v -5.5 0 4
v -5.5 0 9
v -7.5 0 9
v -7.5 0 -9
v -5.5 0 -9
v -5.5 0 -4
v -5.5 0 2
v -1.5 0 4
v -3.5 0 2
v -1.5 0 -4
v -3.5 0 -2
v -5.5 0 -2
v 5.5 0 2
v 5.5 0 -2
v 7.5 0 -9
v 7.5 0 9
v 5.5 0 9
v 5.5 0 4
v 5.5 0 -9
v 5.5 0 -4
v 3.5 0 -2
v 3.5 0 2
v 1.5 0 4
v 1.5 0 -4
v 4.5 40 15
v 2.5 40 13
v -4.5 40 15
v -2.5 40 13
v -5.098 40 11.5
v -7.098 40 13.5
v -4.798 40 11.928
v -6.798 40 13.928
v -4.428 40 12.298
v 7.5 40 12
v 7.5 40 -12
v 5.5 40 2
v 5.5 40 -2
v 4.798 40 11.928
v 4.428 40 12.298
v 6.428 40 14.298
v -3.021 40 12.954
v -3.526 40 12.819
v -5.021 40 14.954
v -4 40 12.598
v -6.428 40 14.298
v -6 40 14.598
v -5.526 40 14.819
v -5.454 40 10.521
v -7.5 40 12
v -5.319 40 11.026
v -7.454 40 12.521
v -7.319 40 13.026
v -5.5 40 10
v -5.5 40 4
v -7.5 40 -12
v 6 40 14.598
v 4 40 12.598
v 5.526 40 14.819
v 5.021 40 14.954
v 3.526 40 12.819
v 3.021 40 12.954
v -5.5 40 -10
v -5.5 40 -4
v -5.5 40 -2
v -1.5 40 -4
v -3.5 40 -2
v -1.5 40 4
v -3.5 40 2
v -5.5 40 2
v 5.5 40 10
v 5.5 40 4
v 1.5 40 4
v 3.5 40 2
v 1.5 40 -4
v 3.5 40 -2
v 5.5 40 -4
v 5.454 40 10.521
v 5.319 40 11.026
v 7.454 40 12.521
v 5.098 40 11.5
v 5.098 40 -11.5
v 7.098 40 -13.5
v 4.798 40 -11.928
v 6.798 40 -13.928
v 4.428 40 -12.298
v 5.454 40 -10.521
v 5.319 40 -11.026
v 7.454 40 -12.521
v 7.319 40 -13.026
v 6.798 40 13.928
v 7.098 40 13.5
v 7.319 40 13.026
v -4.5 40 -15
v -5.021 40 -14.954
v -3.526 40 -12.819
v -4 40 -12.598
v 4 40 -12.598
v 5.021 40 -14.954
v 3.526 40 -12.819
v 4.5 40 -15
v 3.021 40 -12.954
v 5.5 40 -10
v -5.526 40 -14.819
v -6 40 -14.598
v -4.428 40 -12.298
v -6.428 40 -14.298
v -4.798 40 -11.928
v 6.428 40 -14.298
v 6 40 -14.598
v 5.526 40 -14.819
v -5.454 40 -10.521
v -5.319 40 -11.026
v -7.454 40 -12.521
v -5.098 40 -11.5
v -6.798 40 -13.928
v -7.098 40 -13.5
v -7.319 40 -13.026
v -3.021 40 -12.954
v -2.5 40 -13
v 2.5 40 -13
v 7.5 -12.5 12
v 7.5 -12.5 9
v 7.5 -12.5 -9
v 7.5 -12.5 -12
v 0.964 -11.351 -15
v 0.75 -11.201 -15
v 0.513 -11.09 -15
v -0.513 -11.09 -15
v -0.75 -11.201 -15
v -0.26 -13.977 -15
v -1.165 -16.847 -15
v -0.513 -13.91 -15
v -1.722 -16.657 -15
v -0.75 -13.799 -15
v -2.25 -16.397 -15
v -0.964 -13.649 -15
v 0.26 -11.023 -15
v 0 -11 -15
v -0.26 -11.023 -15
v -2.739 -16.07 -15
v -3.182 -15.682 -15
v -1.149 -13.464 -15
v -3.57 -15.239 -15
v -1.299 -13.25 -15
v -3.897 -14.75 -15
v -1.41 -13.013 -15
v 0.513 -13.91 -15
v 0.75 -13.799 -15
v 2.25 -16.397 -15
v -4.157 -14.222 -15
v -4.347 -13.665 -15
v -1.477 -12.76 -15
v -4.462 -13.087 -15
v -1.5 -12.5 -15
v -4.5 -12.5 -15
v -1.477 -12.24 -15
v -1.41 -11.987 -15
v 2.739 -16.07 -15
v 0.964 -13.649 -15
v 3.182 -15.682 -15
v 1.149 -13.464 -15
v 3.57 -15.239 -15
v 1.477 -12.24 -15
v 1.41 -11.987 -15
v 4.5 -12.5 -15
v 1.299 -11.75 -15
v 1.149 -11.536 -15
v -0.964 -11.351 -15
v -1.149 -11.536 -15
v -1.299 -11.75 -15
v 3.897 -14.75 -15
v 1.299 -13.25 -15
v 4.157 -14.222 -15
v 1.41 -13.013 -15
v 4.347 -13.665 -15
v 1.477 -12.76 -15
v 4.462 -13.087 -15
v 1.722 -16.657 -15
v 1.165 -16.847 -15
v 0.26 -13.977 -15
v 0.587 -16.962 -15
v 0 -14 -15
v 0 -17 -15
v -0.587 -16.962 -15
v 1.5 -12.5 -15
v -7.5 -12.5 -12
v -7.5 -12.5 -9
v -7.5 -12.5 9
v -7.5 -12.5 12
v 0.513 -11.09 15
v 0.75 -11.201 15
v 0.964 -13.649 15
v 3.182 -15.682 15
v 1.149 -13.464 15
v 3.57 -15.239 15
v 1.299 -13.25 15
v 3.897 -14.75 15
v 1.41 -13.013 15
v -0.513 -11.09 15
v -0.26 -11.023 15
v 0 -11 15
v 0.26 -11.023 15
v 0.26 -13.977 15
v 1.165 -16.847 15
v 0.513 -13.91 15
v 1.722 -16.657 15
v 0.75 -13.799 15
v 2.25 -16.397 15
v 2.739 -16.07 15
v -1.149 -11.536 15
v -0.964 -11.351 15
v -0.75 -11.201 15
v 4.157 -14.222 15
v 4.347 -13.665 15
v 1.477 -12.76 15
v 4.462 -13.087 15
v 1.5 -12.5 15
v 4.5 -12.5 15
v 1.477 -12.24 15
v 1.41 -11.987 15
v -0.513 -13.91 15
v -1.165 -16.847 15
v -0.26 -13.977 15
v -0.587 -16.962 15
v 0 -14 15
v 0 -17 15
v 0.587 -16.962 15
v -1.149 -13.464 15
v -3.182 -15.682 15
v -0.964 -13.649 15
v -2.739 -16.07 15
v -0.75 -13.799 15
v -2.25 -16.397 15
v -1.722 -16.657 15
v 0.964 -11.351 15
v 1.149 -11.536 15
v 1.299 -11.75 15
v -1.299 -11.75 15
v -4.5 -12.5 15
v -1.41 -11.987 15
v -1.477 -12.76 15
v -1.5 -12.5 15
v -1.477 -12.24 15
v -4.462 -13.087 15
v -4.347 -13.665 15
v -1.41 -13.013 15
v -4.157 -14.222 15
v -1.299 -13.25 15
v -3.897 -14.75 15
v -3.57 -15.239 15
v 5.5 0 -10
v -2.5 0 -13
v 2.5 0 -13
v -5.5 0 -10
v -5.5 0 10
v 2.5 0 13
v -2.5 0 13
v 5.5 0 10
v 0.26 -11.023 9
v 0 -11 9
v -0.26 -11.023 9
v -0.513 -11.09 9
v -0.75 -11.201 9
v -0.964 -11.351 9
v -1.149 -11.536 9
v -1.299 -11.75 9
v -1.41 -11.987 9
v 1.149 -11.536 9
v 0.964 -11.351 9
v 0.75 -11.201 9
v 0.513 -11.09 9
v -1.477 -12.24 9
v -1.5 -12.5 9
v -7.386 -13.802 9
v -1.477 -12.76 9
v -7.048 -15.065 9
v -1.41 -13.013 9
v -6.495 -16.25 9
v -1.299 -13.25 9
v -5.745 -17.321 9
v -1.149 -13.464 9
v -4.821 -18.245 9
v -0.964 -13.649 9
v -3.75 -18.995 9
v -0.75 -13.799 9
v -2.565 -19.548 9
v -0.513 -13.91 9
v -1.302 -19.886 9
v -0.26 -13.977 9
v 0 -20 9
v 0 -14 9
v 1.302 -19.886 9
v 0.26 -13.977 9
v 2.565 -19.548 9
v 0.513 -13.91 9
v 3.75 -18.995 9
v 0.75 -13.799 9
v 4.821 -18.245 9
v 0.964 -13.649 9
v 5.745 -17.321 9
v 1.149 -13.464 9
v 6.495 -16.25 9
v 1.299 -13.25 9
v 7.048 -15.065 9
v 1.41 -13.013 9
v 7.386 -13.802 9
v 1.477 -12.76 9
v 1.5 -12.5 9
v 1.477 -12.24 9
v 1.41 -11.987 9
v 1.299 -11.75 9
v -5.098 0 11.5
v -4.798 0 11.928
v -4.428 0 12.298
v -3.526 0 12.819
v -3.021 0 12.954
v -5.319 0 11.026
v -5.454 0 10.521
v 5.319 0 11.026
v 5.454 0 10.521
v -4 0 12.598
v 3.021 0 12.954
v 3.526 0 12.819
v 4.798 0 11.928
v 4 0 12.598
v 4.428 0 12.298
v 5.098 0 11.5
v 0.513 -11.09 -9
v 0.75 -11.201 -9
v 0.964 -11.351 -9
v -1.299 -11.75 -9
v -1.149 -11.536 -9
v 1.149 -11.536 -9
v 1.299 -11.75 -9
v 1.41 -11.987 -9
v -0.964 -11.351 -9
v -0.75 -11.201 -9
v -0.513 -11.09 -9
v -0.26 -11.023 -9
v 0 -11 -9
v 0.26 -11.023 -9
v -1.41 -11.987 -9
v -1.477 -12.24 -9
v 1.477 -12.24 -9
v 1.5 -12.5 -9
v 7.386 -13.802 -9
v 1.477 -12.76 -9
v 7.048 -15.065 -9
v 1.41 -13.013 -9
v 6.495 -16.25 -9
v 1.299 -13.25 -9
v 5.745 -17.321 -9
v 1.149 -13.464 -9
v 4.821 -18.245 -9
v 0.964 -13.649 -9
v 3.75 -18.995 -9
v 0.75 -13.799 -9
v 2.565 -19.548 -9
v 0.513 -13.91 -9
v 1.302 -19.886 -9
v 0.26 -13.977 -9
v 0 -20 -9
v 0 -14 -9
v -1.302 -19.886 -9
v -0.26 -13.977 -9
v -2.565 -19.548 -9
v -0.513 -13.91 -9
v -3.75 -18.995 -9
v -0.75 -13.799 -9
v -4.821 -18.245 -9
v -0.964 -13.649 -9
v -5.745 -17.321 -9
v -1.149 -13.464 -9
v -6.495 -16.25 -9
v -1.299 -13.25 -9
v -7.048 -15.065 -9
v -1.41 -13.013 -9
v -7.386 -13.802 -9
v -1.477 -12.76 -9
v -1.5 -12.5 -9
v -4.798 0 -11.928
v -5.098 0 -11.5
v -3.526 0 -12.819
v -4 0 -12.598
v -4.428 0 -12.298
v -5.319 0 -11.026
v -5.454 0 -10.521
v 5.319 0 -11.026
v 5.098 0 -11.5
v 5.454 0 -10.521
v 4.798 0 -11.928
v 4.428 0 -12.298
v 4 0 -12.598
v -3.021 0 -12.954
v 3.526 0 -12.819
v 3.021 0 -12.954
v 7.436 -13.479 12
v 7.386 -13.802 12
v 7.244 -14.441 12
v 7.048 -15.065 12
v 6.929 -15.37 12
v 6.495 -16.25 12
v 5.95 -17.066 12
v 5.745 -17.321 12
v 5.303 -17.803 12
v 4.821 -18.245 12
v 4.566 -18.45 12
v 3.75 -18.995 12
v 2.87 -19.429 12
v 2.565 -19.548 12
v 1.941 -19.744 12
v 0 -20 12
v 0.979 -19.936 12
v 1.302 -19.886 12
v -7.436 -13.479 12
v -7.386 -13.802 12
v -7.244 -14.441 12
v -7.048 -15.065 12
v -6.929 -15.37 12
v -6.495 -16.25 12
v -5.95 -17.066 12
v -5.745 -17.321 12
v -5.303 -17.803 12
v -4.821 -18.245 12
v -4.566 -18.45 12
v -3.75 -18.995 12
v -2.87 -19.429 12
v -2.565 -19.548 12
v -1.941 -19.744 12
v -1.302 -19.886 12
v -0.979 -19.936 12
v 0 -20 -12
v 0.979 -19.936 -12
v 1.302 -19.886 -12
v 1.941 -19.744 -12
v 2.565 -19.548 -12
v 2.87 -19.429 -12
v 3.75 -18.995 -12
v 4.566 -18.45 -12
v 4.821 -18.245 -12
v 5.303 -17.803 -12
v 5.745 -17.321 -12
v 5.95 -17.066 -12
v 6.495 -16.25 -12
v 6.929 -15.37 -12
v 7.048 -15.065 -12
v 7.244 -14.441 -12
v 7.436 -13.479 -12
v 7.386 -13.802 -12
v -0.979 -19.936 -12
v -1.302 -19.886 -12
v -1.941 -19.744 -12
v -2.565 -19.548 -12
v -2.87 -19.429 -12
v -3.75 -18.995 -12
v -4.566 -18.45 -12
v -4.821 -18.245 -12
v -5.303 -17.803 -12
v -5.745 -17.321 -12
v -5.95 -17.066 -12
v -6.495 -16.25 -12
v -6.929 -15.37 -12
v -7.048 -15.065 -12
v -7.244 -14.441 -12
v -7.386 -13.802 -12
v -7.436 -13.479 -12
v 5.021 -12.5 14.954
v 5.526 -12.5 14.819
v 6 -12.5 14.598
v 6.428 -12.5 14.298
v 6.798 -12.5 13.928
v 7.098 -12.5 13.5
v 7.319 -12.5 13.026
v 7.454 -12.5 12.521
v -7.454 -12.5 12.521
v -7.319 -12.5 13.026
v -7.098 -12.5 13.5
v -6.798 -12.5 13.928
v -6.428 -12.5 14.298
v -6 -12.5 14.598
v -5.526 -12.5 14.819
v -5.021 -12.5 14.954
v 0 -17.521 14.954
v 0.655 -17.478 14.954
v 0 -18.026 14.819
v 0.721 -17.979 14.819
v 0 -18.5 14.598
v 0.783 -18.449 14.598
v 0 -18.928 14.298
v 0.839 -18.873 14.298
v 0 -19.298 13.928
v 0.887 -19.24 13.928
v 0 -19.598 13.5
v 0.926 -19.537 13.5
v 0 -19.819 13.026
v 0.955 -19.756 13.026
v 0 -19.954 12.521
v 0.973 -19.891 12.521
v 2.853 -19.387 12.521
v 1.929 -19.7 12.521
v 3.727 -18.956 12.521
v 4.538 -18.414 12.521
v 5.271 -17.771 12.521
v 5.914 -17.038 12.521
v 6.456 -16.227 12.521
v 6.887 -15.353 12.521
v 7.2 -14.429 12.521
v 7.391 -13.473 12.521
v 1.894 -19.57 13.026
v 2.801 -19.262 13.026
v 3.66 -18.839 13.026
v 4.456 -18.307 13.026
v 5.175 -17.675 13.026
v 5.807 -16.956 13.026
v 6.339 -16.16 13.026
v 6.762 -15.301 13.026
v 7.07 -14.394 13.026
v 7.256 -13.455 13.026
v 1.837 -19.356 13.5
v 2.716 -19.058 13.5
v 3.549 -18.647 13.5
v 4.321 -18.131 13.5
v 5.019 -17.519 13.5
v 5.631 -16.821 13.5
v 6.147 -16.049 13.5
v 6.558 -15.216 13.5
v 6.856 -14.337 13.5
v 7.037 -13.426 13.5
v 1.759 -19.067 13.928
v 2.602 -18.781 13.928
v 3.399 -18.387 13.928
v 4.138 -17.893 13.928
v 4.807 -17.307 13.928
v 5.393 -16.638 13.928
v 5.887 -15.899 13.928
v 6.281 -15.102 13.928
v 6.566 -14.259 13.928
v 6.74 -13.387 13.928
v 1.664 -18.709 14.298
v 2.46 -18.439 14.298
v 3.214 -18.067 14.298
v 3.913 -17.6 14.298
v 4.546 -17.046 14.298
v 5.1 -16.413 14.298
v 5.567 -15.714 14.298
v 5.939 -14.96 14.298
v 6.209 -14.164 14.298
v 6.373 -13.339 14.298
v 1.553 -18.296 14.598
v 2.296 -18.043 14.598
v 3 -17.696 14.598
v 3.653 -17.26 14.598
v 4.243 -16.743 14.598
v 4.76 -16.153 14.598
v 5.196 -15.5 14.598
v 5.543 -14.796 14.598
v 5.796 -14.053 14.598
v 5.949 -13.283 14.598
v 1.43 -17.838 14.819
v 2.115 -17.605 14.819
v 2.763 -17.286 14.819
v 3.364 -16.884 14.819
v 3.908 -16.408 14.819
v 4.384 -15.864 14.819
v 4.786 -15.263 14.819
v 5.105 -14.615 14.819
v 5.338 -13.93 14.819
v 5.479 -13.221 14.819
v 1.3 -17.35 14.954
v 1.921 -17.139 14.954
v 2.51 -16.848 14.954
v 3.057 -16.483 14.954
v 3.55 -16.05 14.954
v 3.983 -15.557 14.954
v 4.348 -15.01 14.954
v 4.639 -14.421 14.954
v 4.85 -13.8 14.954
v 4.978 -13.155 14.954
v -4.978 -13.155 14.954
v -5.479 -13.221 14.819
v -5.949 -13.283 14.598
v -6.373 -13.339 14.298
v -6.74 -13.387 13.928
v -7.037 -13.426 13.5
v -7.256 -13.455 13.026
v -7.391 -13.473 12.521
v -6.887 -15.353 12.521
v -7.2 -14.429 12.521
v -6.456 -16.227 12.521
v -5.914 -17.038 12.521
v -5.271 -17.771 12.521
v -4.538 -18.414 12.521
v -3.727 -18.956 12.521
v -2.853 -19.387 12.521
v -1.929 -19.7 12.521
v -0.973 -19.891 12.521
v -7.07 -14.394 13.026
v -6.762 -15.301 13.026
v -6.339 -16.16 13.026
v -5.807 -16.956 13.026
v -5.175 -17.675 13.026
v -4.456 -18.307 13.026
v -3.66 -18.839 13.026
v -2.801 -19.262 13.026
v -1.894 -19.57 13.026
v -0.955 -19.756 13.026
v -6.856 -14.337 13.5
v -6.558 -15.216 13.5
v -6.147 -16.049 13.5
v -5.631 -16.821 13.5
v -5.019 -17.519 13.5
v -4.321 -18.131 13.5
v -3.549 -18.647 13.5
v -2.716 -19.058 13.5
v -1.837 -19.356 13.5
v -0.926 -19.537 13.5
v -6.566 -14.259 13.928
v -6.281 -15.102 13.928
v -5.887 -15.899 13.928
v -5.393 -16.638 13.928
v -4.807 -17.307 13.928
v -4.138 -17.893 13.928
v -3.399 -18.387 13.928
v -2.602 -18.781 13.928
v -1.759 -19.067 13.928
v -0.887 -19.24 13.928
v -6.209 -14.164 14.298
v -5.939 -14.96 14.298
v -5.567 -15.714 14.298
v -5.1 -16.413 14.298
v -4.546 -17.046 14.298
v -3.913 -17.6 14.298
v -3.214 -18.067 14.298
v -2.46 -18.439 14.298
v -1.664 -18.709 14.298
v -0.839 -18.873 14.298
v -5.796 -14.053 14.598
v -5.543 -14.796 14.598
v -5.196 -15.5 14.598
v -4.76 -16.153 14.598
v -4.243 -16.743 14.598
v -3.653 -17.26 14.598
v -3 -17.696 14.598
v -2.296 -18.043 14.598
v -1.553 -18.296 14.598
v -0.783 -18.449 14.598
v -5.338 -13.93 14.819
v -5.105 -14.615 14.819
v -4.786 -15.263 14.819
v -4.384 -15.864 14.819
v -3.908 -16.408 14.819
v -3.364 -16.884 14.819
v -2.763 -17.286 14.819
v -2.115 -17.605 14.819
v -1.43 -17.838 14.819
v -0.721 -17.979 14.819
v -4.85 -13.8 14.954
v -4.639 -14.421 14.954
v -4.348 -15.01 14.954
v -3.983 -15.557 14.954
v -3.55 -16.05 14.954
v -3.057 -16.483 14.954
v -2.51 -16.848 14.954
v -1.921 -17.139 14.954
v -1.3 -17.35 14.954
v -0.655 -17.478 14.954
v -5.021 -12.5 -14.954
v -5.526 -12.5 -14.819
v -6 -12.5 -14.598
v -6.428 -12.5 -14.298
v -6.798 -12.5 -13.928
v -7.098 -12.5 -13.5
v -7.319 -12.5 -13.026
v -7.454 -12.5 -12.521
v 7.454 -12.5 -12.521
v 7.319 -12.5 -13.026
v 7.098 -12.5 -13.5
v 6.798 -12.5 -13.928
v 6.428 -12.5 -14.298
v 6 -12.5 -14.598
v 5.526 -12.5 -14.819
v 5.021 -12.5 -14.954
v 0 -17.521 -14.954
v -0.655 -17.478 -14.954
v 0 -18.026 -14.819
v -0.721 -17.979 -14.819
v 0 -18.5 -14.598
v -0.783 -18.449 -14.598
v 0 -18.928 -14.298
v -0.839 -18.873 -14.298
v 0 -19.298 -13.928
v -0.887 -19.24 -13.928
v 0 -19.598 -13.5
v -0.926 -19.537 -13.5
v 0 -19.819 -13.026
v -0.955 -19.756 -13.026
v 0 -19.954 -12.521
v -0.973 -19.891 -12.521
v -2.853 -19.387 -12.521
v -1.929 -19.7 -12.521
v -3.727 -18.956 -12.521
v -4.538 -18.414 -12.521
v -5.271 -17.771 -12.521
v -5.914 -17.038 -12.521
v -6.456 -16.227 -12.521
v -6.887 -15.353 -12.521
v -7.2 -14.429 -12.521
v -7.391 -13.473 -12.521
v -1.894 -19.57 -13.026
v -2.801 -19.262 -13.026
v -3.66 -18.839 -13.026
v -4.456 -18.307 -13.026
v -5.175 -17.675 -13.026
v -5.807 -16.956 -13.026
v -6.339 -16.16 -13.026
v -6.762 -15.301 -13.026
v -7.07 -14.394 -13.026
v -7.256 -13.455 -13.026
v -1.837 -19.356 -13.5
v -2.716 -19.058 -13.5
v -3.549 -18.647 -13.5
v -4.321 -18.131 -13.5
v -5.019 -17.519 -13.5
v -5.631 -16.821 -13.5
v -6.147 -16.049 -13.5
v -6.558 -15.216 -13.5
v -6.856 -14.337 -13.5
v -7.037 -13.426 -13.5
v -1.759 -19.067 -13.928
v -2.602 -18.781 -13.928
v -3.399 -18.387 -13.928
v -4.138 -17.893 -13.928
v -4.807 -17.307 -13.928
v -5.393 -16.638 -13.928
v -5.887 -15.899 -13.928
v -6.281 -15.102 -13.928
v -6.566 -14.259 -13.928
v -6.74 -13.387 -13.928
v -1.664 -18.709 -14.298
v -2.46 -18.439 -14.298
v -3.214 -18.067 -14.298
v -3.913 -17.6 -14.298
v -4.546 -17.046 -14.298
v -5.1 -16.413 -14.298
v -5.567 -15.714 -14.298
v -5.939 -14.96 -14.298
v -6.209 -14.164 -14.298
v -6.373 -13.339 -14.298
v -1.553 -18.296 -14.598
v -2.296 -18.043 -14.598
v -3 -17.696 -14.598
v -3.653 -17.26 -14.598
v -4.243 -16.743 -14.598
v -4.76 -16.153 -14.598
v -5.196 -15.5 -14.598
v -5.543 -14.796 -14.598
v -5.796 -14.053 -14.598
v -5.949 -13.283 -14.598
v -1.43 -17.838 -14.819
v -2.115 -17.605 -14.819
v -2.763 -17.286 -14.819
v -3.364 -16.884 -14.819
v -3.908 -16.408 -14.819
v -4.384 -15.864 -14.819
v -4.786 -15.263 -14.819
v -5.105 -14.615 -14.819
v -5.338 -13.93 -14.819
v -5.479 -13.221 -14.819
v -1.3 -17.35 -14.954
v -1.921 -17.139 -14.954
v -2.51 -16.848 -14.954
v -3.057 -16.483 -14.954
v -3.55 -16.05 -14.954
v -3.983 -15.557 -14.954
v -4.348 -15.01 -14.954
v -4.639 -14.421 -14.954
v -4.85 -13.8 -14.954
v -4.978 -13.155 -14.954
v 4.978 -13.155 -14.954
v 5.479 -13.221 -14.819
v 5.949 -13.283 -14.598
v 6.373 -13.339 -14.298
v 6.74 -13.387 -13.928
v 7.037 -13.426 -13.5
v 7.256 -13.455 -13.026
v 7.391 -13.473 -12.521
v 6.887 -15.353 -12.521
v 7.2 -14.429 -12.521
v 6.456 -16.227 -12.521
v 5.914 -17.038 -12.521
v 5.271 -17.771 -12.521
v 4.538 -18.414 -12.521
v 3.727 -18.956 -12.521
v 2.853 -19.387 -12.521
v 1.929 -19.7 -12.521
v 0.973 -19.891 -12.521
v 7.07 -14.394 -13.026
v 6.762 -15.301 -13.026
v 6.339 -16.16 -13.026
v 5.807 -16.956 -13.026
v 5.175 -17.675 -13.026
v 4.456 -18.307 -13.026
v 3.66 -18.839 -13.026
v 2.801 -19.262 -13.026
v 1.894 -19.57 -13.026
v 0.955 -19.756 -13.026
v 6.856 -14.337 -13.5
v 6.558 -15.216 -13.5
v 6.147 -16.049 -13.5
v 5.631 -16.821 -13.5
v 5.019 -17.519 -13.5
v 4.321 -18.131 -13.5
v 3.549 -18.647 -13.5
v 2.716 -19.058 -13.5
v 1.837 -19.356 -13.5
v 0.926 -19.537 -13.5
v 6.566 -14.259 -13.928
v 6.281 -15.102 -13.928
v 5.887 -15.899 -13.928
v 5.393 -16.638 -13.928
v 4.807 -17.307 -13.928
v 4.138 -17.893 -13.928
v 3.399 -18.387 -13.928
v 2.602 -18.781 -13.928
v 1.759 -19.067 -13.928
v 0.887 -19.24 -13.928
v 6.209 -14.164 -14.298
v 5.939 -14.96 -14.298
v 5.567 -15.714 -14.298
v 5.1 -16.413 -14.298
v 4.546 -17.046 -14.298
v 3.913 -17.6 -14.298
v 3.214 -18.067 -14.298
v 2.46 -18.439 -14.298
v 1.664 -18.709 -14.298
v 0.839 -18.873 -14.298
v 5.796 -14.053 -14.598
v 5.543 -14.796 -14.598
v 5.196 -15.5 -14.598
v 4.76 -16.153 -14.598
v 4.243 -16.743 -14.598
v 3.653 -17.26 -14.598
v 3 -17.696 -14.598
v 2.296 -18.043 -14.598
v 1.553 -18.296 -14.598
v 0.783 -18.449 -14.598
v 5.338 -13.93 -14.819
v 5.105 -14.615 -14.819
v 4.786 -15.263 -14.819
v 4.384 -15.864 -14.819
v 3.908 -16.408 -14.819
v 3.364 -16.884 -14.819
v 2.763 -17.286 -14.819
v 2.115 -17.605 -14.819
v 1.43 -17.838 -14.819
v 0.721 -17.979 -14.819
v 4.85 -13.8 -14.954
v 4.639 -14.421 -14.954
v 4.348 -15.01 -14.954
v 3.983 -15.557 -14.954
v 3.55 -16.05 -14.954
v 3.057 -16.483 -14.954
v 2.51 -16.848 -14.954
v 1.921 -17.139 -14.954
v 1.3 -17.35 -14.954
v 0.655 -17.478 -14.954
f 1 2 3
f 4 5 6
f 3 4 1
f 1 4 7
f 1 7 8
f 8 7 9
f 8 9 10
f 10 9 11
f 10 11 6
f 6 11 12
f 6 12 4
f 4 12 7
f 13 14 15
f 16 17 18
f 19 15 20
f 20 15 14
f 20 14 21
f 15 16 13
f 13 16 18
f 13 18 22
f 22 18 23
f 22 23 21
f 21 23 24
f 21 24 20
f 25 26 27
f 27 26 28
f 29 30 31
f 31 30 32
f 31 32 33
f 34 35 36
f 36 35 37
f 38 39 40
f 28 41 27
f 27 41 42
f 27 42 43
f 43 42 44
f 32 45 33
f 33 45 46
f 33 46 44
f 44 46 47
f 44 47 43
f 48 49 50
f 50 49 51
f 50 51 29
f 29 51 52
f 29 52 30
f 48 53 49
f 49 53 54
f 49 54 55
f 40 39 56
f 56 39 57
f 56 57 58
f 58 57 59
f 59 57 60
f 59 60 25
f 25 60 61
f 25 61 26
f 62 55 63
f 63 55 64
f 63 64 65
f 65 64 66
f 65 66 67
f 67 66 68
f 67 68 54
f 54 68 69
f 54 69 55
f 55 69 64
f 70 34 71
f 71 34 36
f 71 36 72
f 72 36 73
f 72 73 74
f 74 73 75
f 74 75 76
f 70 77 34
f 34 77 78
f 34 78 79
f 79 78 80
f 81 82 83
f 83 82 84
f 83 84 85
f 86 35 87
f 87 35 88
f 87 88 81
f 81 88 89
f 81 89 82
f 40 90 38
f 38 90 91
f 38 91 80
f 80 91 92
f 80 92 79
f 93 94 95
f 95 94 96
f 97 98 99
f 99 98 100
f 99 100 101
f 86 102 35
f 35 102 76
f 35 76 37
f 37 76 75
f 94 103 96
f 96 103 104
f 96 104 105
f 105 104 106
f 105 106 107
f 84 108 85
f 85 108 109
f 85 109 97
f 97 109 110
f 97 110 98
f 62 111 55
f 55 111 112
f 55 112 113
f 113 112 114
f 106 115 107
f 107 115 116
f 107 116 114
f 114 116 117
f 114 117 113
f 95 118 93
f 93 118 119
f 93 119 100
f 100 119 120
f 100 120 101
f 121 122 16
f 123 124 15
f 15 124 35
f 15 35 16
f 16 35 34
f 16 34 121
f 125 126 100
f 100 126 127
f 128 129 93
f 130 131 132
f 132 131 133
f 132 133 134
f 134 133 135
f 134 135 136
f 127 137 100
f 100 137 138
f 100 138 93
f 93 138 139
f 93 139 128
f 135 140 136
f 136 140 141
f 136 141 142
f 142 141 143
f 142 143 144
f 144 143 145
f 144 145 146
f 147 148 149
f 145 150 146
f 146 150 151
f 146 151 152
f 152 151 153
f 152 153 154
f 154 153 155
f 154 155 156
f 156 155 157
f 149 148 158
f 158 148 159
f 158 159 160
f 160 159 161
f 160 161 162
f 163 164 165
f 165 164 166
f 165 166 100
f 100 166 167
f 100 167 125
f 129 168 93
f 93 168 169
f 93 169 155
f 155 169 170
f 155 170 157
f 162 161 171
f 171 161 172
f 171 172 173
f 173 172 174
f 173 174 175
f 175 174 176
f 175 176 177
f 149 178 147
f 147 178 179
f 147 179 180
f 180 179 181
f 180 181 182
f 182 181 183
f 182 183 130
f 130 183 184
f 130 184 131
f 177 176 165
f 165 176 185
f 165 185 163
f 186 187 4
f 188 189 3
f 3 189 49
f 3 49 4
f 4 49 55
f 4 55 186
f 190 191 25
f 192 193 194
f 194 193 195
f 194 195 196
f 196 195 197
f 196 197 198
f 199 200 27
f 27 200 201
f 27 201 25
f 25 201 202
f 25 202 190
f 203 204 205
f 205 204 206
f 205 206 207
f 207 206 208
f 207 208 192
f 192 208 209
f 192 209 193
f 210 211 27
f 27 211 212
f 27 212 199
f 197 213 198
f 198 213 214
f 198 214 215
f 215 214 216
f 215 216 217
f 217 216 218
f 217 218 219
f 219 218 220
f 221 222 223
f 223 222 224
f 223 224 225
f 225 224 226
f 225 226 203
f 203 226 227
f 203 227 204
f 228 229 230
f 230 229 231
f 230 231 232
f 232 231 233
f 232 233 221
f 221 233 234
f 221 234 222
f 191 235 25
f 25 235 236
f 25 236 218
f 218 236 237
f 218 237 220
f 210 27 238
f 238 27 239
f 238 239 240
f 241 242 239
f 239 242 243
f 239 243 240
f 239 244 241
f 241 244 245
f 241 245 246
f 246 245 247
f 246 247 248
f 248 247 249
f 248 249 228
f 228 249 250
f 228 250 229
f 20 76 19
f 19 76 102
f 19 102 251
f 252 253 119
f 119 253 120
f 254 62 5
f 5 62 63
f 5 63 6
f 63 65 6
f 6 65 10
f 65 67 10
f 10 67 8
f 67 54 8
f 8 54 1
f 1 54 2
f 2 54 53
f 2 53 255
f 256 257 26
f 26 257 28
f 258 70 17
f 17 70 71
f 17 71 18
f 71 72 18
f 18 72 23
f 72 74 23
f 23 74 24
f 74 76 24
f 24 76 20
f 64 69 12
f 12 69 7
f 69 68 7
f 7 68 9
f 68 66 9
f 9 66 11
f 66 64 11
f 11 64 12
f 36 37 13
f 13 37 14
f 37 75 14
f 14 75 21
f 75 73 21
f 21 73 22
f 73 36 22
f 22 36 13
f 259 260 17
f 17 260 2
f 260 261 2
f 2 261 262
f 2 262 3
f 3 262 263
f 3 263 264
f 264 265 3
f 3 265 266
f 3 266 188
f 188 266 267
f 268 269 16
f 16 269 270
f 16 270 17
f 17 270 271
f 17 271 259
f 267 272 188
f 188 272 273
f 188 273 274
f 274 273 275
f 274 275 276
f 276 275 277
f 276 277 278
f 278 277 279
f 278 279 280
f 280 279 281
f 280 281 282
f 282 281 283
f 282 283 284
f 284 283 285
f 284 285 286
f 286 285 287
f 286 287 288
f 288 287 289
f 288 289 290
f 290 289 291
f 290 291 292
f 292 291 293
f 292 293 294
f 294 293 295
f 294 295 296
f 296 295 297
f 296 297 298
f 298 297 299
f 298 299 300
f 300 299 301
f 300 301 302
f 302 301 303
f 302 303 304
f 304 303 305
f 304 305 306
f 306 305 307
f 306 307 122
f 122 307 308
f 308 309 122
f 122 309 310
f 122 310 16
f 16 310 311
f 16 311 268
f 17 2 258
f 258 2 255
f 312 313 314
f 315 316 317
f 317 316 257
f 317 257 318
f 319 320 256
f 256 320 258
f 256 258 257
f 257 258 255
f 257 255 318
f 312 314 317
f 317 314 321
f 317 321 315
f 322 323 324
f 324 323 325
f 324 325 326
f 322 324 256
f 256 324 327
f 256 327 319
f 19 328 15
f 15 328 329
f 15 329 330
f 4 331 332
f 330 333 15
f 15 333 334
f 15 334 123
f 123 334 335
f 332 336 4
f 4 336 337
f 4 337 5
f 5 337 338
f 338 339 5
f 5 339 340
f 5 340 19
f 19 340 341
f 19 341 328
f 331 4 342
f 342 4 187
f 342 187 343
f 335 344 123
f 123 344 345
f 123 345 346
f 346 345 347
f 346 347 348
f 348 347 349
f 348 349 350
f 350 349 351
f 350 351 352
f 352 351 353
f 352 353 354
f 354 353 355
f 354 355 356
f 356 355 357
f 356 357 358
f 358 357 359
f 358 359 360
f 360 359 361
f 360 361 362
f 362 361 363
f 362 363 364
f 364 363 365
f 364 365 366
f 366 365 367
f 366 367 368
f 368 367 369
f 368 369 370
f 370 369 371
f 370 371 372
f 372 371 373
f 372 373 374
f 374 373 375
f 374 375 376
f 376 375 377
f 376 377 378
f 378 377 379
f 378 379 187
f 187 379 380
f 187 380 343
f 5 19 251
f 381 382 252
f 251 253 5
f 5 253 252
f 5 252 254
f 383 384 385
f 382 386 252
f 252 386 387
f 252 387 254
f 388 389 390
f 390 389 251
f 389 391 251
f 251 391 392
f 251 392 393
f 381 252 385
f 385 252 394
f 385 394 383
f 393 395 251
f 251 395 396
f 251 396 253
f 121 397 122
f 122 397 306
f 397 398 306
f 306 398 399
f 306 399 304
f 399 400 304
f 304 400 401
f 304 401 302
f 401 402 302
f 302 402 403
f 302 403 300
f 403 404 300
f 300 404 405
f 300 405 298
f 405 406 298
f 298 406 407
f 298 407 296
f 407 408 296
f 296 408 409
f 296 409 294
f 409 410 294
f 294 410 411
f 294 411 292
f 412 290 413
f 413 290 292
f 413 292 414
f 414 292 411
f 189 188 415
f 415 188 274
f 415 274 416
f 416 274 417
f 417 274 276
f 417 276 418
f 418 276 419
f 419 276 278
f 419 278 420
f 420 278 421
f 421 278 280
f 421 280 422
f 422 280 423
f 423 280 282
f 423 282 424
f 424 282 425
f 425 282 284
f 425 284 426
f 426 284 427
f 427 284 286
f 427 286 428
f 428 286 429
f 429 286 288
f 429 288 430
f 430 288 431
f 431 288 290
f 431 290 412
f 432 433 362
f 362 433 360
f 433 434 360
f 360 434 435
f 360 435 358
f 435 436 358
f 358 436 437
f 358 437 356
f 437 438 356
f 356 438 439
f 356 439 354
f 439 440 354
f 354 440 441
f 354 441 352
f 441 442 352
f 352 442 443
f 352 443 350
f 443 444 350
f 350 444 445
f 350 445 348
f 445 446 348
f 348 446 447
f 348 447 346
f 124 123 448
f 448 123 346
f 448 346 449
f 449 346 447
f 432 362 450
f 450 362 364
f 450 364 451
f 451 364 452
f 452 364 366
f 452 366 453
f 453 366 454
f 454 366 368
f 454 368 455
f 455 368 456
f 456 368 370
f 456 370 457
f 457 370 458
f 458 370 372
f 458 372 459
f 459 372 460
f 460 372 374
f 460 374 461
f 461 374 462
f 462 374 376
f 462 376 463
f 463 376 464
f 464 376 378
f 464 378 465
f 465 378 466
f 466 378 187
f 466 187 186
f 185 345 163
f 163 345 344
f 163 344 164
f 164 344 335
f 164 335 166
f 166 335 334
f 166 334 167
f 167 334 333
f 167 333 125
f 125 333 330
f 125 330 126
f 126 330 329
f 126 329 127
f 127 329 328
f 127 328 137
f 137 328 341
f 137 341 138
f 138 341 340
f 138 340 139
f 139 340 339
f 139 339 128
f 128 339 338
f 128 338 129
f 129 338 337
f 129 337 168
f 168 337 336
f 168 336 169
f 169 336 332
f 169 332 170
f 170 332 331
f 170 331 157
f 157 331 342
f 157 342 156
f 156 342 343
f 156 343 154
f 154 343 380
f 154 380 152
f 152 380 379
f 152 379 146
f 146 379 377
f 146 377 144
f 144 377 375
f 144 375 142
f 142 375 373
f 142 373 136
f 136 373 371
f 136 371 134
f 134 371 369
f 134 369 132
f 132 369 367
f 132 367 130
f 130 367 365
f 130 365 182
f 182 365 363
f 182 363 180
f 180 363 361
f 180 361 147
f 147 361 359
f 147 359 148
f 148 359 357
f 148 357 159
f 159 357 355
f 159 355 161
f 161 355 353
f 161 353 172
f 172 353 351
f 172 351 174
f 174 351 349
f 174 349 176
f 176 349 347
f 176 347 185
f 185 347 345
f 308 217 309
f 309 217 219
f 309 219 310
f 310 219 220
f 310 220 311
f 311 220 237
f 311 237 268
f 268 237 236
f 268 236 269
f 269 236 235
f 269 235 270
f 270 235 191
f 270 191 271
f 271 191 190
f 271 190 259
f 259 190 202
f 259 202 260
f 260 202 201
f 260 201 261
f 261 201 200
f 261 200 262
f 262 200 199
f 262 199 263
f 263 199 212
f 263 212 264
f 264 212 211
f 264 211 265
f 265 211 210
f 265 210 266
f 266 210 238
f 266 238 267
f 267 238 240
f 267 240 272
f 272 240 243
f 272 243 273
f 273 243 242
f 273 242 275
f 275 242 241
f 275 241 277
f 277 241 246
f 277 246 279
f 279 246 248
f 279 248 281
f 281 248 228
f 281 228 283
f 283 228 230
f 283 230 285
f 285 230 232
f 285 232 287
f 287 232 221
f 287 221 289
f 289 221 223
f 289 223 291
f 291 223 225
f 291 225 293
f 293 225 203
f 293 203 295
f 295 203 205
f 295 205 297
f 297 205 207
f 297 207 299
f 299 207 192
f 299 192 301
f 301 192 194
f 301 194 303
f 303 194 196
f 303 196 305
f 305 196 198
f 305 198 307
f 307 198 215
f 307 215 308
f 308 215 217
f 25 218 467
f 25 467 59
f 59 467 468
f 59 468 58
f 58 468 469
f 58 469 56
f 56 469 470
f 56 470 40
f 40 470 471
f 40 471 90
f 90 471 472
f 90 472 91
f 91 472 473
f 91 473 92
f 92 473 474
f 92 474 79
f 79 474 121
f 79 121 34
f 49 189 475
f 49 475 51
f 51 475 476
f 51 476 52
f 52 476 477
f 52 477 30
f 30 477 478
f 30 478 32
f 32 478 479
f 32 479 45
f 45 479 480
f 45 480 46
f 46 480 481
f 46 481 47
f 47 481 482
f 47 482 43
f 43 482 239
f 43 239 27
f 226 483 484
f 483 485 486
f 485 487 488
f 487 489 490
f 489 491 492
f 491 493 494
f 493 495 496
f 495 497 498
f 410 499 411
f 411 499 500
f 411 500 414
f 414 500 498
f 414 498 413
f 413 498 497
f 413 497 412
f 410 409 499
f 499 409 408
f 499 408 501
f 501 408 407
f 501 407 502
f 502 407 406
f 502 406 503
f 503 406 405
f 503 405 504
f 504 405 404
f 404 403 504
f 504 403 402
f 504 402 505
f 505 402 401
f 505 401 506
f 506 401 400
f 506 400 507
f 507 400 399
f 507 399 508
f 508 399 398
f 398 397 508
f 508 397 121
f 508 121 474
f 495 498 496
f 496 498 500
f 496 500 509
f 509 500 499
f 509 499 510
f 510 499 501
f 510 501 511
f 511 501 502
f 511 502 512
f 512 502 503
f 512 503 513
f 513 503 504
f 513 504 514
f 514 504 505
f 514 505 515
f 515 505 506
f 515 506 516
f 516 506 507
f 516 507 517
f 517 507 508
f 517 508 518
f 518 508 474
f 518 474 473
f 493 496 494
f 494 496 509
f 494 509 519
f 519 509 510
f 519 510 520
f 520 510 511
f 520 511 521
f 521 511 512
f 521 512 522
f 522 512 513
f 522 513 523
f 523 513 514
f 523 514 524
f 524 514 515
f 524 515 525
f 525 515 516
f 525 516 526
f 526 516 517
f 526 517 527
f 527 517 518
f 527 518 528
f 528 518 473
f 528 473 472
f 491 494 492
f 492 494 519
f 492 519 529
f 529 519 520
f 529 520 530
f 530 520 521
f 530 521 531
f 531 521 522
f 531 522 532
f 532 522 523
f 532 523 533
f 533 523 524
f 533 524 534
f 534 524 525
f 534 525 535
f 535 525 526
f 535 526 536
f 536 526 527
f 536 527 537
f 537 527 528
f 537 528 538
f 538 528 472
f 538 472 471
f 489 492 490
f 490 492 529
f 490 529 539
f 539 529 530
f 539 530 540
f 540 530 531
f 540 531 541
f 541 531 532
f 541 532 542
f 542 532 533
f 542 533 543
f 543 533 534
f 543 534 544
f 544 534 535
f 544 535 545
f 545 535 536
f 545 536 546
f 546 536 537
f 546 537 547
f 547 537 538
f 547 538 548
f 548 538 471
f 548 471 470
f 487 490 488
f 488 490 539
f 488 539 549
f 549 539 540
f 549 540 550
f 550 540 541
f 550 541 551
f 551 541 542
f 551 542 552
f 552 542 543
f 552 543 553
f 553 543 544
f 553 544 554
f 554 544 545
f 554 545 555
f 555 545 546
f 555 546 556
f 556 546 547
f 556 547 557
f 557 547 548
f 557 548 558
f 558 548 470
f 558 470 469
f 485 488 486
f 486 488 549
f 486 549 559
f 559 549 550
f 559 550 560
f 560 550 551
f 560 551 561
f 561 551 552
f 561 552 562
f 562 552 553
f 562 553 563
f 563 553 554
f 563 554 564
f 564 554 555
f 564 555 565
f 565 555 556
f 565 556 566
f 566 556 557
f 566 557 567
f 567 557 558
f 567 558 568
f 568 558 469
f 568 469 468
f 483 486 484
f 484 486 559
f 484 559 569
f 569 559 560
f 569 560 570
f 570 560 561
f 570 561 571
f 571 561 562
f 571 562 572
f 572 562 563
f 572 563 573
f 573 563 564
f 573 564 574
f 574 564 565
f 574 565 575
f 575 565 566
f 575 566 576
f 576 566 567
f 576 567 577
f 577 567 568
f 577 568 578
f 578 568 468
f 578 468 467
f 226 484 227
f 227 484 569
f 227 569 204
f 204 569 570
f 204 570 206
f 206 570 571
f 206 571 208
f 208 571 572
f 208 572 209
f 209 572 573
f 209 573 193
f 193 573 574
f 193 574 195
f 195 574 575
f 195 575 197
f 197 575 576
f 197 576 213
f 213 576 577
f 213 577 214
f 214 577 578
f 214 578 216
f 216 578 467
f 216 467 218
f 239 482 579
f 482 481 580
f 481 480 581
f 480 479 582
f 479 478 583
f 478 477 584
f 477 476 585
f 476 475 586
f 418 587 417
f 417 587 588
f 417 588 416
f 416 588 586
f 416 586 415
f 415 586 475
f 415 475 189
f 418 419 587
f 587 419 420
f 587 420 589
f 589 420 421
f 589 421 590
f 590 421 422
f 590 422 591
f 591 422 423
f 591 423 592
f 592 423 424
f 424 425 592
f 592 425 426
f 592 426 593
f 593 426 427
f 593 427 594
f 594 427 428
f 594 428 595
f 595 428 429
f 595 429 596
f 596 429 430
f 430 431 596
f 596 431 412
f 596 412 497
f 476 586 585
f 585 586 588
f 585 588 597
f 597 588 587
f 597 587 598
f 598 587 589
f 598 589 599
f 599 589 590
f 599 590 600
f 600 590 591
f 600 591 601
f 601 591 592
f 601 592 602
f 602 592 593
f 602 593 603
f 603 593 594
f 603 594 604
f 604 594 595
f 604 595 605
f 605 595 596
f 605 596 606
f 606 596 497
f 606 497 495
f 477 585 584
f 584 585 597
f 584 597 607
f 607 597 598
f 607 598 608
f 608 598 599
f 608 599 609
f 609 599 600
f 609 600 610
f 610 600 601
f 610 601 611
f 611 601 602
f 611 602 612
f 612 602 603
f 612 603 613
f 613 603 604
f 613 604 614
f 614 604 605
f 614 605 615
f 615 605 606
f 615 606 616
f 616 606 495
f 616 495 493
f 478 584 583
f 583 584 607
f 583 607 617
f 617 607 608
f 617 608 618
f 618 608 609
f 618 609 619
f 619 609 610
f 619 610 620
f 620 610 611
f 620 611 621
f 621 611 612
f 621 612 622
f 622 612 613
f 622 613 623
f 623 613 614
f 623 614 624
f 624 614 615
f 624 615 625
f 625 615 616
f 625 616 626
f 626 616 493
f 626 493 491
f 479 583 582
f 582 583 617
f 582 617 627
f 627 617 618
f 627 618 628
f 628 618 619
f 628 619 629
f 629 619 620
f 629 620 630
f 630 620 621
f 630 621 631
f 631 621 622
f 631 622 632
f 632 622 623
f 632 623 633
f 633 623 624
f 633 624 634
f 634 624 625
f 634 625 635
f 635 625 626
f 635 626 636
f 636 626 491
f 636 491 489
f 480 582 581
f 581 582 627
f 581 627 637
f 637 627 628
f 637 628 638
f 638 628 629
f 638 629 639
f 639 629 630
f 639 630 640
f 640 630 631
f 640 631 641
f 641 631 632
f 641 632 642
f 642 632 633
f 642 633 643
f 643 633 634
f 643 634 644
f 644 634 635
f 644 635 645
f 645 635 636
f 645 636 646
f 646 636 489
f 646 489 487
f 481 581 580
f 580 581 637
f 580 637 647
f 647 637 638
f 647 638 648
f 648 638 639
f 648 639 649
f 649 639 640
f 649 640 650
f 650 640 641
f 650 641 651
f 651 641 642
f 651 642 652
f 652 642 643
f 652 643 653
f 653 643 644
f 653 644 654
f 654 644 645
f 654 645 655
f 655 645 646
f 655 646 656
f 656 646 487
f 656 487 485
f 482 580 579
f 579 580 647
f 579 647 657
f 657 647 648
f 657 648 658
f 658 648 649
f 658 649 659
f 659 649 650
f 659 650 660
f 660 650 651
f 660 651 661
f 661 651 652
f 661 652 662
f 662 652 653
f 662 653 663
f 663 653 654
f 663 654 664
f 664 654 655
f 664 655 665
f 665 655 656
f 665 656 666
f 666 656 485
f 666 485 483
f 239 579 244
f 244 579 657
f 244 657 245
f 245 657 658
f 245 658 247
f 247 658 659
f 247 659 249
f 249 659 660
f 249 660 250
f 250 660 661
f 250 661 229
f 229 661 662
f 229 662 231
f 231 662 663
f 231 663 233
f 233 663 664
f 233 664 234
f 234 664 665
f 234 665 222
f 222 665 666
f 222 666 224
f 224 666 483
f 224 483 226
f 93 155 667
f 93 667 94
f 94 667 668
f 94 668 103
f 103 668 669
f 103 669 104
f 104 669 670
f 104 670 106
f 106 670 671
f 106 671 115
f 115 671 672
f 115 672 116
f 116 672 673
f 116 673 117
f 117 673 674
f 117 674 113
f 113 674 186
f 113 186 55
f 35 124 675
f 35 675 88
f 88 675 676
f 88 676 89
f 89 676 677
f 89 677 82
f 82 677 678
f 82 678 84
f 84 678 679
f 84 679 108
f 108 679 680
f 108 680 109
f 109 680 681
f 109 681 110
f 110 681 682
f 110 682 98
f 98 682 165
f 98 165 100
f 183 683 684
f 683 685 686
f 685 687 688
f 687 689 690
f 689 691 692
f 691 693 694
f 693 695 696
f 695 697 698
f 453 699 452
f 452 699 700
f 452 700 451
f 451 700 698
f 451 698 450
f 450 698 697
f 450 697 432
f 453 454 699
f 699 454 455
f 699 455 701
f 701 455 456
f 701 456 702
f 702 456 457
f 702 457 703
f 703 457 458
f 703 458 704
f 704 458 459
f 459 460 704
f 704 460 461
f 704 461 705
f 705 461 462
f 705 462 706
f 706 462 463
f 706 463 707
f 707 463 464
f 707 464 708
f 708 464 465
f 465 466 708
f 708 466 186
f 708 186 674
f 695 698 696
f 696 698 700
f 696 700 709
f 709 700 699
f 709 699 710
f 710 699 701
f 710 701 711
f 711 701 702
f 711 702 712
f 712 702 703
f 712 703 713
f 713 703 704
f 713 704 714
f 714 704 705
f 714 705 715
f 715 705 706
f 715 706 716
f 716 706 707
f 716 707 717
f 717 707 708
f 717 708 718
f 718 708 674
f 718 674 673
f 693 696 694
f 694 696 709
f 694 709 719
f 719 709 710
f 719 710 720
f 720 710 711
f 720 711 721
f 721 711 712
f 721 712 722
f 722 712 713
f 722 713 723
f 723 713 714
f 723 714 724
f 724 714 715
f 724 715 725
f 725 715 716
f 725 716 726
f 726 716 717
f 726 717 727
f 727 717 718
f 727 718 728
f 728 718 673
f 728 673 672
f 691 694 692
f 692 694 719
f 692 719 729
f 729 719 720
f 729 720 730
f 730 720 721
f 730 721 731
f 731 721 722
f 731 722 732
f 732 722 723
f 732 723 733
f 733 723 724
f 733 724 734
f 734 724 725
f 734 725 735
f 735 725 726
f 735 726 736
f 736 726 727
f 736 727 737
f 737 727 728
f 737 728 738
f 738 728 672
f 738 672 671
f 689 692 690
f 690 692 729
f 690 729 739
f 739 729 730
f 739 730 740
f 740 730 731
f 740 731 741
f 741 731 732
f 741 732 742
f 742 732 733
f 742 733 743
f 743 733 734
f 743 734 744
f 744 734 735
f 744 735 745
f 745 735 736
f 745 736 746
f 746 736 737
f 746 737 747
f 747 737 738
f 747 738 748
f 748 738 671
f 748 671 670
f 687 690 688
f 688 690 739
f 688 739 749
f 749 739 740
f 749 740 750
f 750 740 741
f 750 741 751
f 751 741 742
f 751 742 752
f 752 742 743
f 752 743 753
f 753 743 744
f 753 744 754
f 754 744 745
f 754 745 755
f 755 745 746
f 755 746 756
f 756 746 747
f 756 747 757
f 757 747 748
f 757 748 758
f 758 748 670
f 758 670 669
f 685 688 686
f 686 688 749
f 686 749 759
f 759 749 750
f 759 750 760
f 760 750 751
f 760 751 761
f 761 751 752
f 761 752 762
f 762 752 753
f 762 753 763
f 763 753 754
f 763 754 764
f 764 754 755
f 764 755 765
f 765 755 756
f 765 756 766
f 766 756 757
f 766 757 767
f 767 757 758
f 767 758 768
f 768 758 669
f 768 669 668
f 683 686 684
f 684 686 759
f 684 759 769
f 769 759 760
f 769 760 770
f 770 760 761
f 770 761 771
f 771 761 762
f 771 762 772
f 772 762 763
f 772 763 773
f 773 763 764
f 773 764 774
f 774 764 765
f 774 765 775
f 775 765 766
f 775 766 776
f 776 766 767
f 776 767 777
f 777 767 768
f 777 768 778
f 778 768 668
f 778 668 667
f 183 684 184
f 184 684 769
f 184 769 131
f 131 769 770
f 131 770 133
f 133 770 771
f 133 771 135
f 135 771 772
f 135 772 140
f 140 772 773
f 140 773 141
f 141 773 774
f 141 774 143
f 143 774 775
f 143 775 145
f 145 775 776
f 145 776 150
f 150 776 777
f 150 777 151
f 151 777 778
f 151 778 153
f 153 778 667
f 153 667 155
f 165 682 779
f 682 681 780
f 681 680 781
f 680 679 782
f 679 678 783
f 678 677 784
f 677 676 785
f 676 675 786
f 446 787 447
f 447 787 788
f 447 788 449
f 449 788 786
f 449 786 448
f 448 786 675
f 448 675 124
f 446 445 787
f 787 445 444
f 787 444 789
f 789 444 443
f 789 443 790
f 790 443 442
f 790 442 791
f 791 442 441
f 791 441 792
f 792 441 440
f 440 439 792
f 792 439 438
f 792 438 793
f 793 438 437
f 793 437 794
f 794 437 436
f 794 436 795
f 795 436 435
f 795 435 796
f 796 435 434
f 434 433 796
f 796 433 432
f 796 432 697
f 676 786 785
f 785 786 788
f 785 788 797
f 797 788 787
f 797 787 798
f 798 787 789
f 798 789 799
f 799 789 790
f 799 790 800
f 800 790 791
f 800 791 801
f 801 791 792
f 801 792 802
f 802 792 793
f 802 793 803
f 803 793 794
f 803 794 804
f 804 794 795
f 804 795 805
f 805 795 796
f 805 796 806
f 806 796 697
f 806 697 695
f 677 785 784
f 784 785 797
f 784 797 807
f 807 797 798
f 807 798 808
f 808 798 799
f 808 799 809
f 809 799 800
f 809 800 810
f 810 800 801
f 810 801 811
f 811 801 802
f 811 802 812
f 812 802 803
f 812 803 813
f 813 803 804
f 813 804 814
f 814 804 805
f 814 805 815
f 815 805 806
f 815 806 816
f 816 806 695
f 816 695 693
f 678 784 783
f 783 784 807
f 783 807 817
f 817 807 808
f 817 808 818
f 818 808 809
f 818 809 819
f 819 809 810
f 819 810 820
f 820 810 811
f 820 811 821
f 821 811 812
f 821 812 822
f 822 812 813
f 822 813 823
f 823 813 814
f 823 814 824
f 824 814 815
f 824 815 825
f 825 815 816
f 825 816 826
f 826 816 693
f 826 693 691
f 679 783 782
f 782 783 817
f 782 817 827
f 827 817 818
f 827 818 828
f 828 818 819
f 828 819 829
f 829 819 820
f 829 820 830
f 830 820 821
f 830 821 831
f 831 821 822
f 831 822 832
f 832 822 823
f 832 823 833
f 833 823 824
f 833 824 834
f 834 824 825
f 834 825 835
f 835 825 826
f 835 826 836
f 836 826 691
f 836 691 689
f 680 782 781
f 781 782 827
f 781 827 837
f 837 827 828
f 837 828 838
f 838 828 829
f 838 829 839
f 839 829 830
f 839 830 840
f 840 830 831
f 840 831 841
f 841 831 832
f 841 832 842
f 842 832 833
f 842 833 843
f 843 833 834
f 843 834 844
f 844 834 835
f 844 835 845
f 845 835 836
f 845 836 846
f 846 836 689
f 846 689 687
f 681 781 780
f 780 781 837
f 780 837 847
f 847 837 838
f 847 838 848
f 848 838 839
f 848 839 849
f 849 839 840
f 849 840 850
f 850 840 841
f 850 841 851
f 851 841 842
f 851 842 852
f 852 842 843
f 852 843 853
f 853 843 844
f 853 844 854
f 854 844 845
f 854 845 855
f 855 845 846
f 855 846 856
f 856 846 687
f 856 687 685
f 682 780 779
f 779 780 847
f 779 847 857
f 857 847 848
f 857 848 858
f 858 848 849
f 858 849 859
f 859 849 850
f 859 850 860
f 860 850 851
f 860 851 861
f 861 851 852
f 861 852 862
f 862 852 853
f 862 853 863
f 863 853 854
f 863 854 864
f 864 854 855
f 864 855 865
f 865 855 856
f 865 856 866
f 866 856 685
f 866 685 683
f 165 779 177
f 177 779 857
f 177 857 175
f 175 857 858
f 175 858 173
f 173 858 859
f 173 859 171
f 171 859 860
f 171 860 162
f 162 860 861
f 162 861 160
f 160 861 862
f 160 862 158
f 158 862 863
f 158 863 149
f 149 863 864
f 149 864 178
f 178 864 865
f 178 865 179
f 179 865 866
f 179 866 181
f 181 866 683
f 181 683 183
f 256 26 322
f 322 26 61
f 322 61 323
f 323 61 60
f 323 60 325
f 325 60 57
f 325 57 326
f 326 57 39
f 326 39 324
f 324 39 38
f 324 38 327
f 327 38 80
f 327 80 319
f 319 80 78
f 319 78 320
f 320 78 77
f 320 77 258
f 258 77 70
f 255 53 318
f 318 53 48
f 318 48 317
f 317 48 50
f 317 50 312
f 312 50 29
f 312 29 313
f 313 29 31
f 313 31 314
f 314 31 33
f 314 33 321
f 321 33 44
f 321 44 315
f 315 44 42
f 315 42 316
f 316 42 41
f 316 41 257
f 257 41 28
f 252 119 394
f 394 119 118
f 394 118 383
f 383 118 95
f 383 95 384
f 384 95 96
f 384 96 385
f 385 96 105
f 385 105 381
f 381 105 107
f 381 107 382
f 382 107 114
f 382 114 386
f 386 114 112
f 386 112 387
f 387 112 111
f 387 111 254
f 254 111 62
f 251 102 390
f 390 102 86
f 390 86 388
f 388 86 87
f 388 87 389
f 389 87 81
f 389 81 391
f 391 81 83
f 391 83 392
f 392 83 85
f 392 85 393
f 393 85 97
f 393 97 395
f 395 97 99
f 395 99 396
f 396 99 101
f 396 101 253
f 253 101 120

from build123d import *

# Parameters (mm, degrees)
SKETCH1_W           = 15
SKETCH1_H           = 30
SKETCH1_W_2         = 2
SKETCH1_H_2         = 4
BOSS_EXTRUDE1_DEPTH = 40
SKETCH2_W           = 15
SKETCH2_H           = 6
BOSS_EXTRUDE2_DEPTH = 20
FILLET1_R           = 7.5
SKETCH3_R           = 1.5
CUT_EXTRUDE1_DEPTH  = 51.55937104
FILLET2_R           = 3


with BuildPart() as part:
    # Sketch1 → Boss-Extrude1 (new body)
    with BuildSketch(Plane(origin=(0, 0, 0), x_dir=(1, 0, 0), z_dir=(0, 1, 0))):
        Rectangle(SKETCH1_W, SKETCH1_H)
        Polygon((-5.5, -13), (5.5, -13), (5.5, -4), (1.5, -4), (1.5, 4), (5.5, 4), (5.5, 13), (-5.5, 13), (-5.5, 4), (-1.5, 4), (-1.5, -4), (-5.5, -4), align=None, mode=Mode.SUBTRACT)
        with Locations((-4.5, 0)):
            Rectangle(SKETCH1_W_2, SKETCH1_H_2, mode=Mode.SUBTRACT)
        with Locations((4.5, 0)):
            Rectangle(SKETCH1_W_2, SKETCH1_H_2, mode=Mode.SUBTRACT)
    extrude(amount=BOSS_EXTRUDE1_DEPTH)

    # Sketch2 → Boss-Extrude2 (add)
    with BuildSketch(Plane.XZ):
        with Locations((0, 12)):
            Rectangle(SKETCH2_W, SKETCH2_H)
        with Locations((0, -12)):
            Rectangle(SKETCH2_W, SKETCH2_H)
    extrude(amount=BOSS_EXTRUDE2_DEPTH)

    # Fillet1
    fillet1_edges = [part.edges().sort_by_distance(p)[0] for p in [
        (-7.5, -20, 12),
        (-7.5, -20, -12),
        (7.5, -20, -12),
        (7.5, -20, 12),
    ]]
    fillet(fillet1_edges, radius=FILLET1_R - 0.0001)  # a hair under: the kernel refuses the full size

    # Sketch3 → Cut-Extrude1 (cut, through all)
    with BuildSketch(Plane.XY.offset(15)):
        with Locations((0, -12.5)):
            Circle(SKETCH3_R)
    extrude(amount=-CUT_EXTRUDE1_DEPTH, mode=Mode.SUBTRACT)

    # Fillet2
    fillet2_edges = [part.edges().sort_by_distance(p)[0] for p in [
        (5.303330148, -17.803330148, 15),
        (-5.303330148, -17.803330148, 15),
        (5.303330148, -17.803330148, -15),
        (-5.303330148, -17.803330148, -15),
        (5.5, 20, -13),
        (-5.5, 20, -13),
        (-5.5, 20, 13),
        (5.5, 20, 13),
        (7.5, 13.74995, 15),
        (-7.5, 13.74995, 15),
        (-7.5, 13.74995, -15),
        (7.5, 13.74995, -15),
    ]]
    fillet(fillet2_edges, radius=FILLET2_R)


solid = part.part
